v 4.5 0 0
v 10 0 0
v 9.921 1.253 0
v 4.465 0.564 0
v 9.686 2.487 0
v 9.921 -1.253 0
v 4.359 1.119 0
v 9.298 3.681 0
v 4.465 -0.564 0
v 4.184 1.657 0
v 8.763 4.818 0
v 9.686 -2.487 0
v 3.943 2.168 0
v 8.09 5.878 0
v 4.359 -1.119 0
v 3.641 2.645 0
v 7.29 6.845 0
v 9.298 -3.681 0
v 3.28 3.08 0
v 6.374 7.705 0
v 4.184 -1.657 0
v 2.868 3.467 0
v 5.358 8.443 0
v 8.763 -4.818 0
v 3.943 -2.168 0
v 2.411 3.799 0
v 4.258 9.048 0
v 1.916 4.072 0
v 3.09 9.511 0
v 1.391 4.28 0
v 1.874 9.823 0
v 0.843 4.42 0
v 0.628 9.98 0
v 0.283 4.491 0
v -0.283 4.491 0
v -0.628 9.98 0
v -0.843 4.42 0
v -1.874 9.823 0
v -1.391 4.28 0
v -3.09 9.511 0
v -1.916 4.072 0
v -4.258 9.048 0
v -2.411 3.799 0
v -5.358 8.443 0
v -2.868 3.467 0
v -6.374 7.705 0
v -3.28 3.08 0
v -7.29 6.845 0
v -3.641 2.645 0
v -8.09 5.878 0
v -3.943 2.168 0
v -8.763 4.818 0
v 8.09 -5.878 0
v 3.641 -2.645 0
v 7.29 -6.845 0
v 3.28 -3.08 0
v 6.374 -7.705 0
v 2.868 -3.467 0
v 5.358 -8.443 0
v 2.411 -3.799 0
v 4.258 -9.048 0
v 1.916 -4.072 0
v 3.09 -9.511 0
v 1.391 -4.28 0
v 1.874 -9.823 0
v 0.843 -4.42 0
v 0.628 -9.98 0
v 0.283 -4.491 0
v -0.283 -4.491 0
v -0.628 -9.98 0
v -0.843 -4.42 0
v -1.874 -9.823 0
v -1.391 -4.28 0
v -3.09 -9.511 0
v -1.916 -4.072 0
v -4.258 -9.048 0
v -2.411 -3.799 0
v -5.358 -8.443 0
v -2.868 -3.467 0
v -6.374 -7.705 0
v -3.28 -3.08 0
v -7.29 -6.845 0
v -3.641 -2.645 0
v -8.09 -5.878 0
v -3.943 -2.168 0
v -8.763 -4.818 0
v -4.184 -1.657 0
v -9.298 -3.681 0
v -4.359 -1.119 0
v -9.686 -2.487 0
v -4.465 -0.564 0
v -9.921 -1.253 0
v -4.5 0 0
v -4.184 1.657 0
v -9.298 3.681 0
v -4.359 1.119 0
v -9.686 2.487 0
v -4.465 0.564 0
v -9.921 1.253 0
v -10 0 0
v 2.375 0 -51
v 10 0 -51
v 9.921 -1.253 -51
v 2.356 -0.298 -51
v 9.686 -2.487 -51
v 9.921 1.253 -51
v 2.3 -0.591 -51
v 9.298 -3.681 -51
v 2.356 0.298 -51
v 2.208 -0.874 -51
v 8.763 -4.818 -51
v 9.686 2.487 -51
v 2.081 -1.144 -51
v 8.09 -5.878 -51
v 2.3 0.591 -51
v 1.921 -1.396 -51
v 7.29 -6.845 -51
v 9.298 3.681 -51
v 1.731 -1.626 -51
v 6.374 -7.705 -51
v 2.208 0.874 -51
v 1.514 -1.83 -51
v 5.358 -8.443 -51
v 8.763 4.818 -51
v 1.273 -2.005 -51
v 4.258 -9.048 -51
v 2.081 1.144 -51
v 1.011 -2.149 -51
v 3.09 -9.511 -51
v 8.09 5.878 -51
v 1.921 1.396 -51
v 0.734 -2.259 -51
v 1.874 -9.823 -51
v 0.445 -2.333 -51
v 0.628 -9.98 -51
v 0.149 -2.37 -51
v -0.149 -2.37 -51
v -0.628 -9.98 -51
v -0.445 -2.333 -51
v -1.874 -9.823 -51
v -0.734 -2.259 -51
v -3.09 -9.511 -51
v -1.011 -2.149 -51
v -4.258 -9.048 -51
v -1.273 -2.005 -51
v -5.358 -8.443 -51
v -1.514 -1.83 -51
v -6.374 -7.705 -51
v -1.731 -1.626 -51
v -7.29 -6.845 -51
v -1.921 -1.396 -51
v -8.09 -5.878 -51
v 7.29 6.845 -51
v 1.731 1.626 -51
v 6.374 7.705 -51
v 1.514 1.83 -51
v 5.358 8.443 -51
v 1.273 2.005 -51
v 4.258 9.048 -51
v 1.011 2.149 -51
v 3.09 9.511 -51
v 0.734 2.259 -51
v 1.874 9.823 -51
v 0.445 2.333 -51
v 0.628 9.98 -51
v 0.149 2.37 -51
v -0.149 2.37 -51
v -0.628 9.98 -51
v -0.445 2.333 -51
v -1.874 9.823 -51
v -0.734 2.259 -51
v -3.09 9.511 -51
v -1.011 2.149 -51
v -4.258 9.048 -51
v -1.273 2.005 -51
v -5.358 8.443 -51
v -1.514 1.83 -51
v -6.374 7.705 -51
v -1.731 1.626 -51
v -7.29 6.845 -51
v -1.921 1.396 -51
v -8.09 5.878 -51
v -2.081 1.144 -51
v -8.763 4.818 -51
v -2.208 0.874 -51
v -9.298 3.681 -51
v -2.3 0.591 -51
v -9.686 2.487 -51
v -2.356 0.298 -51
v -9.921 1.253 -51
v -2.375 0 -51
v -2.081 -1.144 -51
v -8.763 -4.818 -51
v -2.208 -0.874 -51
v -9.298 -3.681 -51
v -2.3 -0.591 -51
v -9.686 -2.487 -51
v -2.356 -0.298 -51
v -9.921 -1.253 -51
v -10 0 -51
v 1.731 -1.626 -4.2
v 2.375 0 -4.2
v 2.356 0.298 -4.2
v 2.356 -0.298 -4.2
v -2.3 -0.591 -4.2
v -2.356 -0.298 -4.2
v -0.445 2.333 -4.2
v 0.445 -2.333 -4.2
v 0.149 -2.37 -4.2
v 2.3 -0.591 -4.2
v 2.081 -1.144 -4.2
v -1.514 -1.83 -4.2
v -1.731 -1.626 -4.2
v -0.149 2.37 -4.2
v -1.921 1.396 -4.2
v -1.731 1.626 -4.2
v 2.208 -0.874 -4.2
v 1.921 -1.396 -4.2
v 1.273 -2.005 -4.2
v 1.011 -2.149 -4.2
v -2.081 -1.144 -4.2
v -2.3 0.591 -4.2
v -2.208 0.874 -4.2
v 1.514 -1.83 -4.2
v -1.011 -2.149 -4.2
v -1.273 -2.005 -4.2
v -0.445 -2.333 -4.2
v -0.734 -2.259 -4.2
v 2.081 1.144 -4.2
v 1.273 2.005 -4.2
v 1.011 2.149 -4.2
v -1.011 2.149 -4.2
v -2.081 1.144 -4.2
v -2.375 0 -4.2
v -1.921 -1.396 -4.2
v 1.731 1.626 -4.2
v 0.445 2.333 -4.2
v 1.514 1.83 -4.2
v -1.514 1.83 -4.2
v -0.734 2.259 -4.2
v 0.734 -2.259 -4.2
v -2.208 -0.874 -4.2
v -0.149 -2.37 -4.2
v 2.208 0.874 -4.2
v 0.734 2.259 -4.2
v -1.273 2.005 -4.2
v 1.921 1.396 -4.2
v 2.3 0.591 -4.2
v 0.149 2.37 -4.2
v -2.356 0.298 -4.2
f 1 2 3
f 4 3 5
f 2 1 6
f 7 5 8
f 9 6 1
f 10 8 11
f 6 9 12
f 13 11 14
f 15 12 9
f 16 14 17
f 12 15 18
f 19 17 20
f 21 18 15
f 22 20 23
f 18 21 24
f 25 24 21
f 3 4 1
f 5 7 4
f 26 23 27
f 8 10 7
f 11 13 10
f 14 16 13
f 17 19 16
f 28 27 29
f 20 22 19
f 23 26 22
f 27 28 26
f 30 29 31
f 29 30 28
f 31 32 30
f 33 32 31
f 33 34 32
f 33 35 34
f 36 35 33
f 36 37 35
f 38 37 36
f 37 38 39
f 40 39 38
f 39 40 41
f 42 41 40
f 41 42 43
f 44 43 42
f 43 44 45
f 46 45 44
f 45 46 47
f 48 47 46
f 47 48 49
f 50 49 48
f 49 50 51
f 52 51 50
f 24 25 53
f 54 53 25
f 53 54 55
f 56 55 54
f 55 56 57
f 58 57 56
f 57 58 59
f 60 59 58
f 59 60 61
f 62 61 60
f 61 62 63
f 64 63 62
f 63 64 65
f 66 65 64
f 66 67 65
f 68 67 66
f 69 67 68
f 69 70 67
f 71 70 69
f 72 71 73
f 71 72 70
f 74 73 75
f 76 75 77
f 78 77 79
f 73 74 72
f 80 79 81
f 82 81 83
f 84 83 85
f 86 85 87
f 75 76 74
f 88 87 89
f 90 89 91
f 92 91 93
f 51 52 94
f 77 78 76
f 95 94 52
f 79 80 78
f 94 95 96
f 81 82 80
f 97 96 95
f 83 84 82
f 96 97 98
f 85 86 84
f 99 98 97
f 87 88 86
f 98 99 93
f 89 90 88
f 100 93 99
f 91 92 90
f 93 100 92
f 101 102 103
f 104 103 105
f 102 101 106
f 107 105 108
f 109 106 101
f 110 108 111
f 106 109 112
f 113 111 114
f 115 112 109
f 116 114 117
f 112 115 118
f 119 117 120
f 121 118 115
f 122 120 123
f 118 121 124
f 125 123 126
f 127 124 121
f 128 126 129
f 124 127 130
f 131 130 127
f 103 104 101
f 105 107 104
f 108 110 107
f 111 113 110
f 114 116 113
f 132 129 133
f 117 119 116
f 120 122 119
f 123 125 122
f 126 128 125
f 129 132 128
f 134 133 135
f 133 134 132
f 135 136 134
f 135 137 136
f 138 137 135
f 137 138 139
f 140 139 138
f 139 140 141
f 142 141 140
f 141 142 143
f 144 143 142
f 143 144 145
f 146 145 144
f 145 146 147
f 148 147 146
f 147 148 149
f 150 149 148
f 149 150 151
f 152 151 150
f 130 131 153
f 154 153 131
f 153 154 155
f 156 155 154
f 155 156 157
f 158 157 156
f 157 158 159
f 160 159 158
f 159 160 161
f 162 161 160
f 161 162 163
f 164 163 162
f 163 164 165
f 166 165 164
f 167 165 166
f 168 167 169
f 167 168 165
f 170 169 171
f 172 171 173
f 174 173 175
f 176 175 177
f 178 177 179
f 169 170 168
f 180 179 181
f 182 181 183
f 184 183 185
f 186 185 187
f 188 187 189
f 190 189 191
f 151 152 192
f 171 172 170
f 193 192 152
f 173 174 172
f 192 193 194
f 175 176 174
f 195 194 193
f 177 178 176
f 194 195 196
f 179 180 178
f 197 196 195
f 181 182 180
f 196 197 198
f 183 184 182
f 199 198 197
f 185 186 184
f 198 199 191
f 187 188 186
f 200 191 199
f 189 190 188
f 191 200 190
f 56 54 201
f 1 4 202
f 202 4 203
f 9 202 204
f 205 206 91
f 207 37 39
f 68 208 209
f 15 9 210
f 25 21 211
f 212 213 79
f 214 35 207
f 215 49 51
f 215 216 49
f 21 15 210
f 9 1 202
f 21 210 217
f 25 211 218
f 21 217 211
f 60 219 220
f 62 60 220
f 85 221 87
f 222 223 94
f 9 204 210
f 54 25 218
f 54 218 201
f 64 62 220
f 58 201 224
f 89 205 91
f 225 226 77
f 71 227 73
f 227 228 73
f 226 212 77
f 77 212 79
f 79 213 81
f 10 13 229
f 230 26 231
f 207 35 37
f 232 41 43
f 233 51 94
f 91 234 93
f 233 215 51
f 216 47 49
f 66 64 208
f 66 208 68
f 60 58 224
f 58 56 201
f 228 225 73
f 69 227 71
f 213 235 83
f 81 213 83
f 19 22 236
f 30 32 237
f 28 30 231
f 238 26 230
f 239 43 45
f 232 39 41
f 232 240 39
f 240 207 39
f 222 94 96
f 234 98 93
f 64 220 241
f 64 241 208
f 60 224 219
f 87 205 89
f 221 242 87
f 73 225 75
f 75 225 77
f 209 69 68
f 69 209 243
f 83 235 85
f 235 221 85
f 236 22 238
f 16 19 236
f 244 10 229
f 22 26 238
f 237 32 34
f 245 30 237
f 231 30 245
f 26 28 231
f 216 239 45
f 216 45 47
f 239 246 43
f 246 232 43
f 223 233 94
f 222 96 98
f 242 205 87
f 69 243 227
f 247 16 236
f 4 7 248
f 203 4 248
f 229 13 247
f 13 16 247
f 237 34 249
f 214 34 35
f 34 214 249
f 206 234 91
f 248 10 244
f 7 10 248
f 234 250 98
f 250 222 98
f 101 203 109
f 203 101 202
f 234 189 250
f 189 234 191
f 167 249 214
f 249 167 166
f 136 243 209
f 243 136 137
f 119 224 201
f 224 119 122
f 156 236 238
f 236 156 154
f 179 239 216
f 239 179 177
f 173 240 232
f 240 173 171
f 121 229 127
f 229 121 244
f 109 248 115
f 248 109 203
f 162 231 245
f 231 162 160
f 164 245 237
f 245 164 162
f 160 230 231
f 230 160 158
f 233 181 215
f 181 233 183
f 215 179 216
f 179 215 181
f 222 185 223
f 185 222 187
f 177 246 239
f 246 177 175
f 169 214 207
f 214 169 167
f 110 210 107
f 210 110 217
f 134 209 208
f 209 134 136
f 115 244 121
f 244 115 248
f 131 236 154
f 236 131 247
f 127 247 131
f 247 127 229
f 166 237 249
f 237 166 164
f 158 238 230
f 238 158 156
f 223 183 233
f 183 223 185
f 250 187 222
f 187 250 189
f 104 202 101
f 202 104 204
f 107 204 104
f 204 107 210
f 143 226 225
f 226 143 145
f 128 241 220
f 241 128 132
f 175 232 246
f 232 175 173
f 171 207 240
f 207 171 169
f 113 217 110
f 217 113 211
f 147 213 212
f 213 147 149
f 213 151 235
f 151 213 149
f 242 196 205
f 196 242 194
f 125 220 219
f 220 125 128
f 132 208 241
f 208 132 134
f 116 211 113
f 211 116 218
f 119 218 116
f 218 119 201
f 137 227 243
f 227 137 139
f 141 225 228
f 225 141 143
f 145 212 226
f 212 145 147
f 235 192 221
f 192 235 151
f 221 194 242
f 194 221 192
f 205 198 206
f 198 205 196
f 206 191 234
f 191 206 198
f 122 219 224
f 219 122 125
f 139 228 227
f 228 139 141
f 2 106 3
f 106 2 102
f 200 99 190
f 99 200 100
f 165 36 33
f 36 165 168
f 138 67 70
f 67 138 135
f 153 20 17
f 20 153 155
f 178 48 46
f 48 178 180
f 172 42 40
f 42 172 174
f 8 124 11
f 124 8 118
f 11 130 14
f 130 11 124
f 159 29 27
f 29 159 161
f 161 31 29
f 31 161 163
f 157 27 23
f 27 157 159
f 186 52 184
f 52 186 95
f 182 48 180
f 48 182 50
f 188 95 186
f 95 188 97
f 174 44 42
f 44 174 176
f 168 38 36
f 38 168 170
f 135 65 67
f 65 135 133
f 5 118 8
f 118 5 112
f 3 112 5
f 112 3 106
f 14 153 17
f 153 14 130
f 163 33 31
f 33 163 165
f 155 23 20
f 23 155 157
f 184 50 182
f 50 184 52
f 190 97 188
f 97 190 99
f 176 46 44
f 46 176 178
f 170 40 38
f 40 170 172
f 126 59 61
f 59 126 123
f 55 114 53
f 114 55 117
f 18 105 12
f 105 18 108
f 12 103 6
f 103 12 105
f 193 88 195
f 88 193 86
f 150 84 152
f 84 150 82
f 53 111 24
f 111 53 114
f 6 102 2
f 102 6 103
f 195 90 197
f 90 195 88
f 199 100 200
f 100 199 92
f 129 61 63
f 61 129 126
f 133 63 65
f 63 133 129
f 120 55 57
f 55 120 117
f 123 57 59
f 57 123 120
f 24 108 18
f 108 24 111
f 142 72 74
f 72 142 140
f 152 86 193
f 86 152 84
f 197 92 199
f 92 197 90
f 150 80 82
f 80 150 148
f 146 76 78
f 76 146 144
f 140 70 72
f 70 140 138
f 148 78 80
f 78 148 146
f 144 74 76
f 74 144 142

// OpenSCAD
$fn = 50;


difference() {
	union() {
		translate(v = [0, 0, -51.0000000000]) {
			cylinder(h = 51, r = 10.0000000000);
		}
		cylinder(h = 0, r = 19.0000000000);
	}
	union() {
		translate(v = [0, 0, 0]) {
			rotate(a = [0, 0, 0]) {
				difference() {
					union() {
						#translate(v = [0, 0, -51.0000000000]) {
							cylinder(h = 51, r = 2.2500000000);
						}
						#translate(v = [0, 0, -4.2000000000]) {
							cylinder(h = 4.2000000000, r1 = 2.3750000000, r2 = 4.5000000000);
						}
						#translate(v = [0, 0, -51.0000000000]) {
							cylinder(h = 51, r = 2.3750000000);
						}
						#translate(v = [0, 0, -51.0000000000]) {
							cylinder(h = 51, r = 2.2500000000);
						}
					}
					union();
				}
			}
		}
	}
}
